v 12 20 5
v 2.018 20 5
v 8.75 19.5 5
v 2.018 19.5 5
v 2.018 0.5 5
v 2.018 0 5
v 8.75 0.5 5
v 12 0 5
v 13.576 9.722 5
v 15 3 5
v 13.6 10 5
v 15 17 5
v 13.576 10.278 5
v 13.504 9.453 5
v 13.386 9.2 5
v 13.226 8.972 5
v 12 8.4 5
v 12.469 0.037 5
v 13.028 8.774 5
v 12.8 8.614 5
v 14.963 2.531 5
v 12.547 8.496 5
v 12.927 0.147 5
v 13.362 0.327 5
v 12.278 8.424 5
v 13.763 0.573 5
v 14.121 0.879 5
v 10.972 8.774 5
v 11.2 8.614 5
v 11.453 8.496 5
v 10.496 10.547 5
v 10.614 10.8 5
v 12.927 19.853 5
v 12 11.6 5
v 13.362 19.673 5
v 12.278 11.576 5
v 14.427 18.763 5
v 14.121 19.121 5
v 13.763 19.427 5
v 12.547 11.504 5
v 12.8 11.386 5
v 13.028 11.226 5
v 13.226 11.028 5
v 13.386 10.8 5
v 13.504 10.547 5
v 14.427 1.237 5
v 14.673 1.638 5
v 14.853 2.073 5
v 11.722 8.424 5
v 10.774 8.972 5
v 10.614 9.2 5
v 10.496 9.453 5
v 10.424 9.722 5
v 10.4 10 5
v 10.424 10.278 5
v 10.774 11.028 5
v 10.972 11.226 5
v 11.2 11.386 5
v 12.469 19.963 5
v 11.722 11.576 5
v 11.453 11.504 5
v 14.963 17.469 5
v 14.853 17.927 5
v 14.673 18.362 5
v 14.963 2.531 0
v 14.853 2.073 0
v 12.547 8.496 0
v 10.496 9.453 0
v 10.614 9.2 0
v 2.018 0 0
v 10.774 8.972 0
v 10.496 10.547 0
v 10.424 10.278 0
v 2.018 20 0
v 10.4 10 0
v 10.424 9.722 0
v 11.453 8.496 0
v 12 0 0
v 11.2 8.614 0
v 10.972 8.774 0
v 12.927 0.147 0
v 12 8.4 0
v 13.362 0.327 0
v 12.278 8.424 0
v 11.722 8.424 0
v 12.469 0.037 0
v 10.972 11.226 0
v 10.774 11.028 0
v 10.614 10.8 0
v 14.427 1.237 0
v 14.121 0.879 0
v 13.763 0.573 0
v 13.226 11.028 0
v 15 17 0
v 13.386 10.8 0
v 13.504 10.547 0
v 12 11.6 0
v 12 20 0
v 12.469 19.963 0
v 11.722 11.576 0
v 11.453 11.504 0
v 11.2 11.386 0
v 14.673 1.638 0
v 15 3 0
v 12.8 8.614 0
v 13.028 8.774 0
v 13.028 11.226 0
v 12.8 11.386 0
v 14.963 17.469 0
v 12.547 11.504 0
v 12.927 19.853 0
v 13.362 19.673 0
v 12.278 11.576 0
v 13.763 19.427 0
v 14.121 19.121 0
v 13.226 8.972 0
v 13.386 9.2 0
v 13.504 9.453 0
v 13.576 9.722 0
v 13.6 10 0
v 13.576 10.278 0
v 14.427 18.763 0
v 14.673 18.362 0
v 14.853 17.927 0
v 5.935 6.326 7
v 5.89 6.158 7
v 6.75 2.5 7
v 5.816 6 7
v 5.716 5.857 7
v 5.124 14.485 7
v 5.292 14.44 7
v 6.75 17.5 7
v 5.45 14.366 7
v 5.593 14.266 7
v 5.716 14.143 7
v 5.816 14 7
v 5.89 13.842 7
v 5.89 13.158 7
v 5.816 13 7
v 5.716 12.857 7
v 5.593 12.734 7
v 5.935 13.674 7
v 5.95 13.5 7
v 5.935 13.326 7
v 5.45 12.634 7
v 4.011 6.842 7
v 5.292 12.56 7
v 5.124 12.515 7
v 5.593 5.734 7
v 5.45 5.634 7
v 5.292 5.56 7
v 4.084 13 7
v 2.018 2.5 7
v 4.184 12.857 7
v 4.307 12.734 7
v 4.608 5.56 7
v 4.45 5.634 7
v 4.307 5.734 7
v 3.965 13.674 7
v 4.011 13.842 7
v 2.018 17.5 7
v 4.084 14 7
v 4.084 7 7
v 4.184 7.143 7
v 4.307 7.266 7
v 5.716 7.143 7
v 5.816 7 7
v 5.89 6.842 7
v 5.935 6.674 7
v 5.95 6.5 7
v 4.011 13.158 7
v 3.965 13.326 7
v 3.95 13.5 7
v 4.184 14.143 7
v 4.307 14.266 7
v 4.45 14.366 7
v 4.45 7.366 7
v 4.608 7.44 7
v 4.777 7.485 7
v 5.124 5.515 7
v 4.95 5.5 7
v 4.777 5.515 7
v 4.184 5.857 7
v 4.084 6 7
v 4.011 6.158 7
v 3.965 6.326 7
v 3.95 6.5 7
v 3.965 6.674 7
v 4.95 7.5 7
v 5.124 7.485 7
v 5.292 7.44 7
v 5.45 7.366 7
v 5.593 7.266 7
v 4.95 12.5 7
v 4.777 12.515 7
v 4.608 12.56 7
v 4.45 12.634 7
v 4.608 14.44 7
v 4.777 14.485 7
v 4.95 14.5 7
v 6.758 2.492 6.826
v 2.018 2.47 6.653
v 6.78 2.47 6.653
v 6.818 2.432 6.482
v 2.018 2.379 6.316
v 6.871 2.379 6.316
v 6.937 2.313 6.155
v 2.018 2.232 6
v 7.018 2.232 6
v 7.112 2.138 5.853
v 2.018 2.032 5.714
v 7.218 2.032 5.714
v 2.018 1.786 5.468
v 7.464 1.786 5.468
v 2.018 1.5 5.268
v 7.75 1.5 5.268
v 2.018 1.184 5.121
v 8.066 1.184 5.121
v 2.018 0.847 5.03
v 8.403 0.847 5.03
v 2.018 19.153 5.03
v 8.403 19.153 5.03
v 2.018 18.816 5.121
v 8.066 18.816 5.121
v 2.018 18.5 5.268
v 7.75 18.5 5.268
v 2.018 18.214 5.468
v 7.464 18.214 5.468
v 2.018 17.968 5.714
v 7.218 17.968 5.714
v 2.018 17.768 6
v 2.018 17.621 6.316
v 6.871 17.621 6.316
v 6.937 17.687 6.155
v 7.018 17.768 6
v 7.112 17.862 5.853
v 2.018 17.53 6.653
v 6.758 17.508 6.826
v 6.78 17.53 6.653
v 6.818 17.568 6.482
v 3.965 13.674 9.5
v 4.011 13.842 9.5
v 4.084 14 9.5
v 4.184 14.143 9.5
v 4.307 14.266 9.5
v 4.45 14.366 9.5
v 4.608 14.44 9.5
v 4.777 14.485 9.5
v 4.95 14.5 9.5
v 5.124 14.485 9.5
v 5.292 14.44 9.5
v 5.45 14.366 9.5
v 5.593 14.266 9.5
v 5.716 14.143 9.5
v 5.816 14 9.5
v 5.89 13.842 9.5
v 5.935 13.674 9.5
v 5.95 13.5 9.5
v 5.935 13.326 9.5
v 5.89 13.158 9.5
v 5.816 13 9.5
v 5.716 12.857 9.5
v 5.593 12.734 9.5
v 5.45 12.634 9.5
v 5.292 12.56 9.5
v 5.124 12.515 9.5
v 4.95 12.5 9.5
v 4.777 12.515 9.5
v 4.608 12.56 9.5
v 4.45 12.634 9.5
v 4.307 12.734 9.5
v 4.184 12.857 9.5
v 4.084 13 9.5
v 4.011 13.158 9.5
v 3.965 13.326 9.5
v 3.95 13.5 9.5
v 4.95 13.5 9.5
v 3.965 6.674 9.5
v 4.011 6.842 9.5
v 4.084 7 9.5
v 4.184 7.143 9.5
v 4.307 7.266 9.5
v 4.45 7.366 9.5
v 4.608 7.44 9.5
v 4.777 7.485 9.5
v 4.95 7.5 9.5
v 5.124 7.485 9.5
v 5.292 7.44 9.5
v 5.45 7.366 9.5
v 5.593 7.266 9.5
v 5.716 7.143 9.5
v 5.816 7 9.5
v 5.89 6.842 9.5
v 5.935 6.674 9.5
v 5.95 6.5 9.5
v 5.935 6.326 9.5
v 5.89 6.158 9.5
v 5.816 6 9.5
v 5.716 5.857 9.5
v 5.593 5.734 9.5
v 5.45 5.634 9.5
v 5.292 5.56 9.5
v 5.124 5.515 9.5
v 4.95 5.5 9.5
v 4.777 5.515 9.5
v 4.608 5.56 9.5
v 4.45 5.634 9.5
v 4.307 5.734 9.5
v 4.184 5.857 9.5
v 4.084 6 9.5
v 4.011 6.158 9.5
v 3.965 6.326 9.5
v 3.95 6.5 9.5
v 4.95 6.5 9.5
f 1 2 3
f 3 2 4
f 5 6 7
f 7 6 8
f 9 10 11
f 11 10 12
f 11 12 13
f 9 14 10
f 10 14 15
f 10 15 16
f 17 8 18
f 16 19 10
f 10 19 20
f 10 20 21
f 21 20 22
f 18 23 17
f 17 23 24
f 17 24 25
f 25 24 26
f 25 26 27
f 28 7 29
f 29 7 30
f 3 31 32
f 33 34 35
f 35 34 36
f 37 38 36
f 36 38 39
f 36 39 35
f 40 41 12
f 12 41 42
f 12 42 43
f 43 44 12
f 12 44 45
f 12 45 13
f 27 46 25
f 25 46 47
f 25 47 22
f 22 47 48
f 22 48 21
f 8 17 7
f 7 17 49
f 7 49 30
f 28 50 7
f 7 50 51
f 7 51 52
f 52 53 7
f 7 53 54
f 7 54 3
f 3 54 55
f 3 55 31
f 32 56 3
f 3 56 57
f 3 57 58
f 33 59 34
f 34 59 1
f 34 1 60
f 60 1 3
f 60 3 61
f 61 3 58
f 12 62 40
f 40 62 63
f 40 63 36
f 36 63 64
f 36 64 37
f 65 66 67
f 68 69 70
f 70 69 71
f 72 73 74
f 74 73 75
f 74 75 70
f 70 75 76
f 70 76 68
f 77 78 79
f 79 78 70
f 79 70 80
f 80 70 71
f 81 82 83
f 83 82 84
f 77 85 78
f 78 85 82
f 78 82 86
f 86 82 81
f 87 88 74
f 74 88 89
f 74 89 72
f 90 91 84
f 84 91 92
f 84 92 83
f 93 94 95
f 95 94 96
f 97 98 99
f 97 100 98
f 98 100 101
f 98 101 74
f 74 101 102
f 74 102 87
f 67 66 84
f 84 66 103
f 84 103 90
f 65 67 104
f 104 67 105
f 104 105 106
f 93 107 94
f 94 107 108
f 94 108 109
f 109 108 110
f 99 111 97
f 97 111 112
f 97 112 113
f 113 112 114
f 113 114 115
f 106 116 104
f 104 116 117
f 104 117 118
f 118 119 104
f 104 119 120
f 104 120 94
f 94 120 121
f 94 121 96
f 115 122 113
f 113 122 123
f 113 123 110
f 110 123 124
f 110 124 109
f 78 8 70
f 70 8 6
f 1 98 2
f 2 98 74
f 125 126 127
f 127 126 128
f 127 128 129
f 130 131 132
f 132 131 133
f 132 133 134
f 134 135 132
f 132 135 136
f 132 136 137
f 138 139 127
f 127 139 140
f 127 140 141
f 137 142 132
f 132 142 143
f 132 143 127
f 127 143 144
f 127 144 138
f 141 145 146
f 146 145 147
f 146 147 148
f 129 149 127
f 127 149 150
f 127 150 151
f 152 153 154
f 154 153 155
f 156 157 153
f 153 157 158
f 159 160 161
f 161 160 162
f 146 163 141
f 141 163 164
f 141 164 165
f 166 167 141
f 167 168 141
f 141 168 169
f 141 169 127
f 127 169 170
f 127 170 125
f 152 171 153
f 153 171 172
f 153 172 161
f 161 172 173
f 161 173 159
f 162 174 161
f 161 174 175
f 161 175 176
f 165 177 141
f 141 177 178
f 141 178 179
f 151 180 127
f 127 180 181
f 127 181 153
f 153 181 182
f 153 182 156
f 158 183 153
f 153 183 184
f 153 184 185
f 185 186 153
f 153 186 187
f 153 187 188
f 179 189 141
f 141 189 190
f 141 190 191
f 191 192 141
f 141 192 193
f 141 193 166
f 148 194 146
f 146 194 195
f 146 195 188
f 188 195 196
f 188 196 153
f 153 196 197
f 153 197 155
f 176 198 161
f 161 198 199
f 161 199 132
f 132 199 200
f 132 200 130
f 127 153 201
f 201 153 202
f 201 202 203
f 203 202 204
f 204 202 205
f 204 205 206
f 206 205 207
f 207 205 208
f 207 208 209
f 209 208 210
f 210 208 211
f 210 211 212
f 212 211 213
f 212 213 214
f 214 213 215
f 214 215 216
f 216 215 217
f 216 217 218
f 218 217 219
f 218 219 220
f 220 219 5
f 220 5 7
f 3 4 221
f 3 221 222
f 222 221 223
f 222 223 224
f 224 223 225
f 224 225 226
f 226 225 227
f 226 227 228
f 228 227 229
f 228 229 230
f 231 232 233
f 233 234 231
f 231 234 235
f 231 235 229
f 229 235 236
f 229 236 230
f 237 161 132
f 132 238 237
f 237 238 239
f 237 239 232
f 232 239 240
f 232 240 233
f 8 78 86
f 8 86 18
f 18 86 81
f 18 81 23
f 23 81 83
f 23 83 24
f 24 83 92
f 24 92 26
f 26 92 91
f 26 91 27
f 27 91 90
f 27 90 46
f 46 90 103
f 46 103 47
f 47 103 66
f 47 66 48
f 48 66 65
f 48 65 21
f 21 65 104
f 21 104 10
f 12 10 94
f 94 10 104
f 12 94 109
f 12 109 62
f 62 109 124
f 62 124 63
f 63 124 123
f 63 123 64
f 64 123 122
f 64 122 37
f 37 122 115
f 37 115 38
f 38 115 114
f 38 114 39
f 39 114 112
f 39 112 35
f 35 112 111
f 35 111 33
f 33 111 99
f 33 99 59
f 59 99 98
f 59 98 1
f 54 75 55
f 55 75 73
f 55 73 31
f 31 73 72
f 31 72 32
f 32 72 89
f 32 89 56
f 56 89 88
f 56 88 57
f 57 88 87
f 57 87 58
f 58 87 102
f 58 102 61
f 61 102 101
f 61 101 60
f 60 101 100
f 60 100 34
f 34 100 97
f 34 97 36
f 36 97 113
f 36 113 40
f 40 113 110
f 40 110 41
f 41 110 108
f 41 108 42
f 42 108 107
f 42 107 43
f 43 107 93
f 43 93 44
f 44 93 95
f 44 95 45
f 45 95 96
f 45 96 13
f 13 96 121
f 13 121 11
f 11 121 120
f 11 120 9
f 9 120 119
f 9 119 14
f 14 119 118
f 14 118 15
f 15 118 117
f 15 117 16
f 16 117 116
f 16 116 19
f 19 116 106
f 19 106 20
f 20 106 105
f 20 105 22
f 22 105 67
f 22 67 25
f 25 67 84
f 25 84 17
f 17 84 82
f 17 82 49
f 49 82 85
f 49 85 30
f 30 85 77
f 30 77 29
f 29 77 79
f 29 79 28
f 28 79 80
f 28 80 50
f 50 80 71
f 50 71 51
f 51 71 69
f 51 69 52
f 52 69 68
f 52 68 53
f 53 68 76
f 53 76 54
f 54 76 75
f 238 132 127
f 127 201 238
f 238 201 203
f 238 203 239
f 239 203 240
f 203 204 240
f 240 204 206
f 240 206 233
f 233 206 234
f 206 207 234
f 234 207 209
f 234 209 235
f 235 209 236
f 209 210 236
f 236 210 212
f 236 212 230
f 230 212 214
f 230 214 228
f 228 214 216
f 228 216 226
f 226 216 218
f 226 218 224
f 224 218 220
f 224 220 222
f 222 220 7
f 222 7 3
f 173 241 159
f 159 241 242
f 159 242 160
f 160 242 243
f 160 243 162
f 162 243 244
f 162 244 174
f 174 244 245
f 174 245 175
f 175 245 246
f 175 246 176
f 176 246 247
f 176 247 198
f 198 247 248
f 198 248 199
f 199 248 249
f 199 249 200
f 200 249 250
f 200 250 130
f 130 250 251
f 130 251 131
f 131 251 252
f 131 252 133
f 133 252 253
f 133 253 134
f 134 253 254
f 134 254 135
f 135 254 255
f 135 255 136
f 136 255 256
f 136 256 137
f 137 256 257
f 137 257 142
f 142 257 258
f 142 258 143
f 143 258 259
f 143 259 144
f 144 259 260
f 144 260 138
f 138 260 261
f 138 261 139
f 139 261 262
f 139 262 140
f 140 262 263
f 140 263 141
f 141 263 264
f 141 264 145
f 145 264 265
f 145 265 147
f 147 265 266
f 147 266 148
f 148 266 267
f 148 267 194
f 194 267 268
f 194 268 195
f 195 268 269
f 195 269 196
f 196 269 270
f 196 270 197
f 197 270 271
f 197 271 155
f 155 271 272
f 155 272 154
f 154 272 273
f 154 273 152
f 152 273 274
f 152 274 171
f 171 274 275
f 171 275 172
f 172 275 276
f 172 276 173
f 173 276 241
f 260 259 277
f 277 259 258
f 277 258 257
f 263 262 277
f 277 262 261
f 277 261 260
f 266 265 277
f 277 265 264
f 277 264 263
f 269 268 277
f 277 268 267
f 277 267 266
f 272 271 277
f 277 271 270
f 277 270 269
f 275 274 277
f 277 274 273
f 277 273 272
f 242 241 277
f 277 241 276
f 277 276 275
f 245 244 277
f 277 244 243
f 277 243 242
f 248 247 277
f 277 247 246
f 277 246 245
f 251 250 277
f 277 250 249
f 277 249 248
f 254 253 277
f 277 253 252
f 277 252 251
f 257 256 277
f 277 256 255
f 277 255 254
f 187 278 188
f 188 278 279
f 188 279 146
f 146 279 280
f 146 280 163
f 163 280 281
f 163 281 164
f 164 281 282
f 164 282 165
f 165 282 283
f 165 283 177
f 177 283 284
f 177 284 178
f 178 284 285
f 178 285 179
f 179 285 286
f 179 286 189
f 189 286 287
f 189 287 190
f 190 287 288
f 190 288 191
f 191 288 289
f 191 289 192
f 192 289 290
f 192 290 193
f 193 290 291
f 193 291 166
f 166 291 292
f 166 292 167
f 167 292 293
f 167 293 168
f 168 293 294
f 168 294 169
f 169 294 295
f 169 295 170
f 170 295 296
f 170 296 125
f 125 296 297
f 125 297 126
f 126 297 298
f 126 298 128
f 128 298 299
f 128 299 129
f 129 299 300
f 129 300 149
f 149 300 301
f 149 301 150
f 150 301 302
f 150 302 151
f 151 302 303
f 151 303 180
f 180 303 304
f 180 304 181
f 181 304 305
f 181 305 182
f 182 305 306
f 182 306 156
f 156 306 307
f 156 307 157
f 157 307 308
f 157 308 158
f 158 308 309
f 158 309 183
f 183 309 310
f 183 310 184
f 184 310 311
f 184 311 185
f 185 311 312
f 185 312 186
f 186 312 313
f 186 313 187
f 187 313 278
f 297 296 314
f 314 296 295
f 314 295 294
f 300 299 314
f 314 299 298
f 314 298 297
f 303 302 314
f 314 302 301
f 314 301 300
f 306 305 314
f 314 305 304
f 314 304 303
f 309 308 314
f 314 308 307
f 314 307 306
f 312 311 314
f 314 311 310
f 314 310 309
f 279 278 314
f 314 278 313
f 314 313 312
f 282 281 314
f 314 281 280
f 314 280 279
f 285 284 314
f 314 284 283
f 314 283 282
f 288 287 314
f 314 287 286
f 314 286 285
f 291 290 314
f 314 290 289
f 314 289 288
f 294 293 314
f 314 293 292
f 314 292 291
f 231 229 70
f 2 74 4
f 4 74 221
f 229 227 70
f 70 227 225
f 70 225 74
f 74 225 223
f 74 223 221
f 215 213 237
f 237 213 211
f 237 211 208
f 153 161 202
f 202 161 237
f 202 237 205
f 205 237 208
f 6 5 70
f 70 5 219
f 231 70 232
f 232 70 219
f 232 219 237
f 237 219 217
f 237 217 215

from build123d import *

# Parameters (mm, degrees)
CROQUIS1_R                 = 1.6
SALIENTE_EXTRUIR1_DEPTH    = 5
CROQUIS2_W                 = 6.75
CROQUIS2_H                 = 15
SALIENTE_EXTRUIR2_DEPTH    = 2
REDONDEO1_R                = 2
CROQUIS3_R                 = 1
SALIENTE_EXTRUIR3_DEPTH    = 2.5
CORTAR_EXTRUIR2_DEPTH      = 6
CORTAR_EXTRUIR2_DEPTH_BACK = 6
CROQUIS4_W                 = 6.920457475
CROQUIS4_H                 = 24.995599696


with BuildPart() as part:
    # Croquis1 → Saliente-Extruir1 (new body)
    with BuildSketch(Plane.XY):
        with BuildLine():
            Line((0, 0), (12, 0))
            ThreePointArc((12, 0), (14.121320344, 0.878679656), (15, 3))
            Line((15, 3), (15, 17))
            ThreePointArc((15, 17), (14.121320344, 19.121320344), (12, 20))
            Line((12, 20), (0, 20))
            Line((0, 20), (0, 0))
        make_face()
        with Locations((12, 10)):
            Circle(CROQUIS1_R, mode=Mode.SUBTRACT)
    extrude(amount=SALIENTE_EXTRUIR1_DEPTH)

    # Croquis2 → Saliente-Extruir2 (add)
    with BuildSketch(Plane.XY.offset(5)):
        with Locations((3.375, 10)):
            Rectangle(CROQUIS2_W, CROQUIS2_H)
    extrude(amount=SALIENTE_EXTRUIR2_DEPTH)

    # Redondeo1
    redondeo1_edges = [part.edges().sort_by_distance(p)[0] for p in [
        (3.375, 17.5, 5),
        (6.75, 10, 5),
        (3.375, 2.5, 5),
    ]]
    fillet(redondeo1_edges, radius=REDONDEO1_R - 0.0001)  # a hair under: the kernel refuses the full size

    # Croquis3 → Saliente-Extruir3 (add)
    with BuildSketch(Plane.XY.offset(7)):
        with Locations((4.95023571, 13.5)):
            Circle(CROQUIS3_R)
        with Locations((4.95023571, 6.5)):
            Circle(CROQUIS3_R)
    extrude(amount=SALIENTE_EXTRUIR3_DEPTH)

    # Croquis4 → Cortar-Extruir2 (cut, two sides: drawn at the far end of the back side and taken through both)
    with BuildSketch(Plane.XY.offset(5).offset(-CORTAR_EXTRUIR2_DEPTH_BACK)):
        with Locations((-1.442627952, 9.887678484)):
            Rectangle(CROQUIS4_W, CROQUIS4_H)
    extrude(amount=CORTAR_EXTRUIR2_DEPTH + CORTAR_EXTRUIR2_DEPTH_BACK, mode=Mode.SUBTRACT)


solid = part.part
